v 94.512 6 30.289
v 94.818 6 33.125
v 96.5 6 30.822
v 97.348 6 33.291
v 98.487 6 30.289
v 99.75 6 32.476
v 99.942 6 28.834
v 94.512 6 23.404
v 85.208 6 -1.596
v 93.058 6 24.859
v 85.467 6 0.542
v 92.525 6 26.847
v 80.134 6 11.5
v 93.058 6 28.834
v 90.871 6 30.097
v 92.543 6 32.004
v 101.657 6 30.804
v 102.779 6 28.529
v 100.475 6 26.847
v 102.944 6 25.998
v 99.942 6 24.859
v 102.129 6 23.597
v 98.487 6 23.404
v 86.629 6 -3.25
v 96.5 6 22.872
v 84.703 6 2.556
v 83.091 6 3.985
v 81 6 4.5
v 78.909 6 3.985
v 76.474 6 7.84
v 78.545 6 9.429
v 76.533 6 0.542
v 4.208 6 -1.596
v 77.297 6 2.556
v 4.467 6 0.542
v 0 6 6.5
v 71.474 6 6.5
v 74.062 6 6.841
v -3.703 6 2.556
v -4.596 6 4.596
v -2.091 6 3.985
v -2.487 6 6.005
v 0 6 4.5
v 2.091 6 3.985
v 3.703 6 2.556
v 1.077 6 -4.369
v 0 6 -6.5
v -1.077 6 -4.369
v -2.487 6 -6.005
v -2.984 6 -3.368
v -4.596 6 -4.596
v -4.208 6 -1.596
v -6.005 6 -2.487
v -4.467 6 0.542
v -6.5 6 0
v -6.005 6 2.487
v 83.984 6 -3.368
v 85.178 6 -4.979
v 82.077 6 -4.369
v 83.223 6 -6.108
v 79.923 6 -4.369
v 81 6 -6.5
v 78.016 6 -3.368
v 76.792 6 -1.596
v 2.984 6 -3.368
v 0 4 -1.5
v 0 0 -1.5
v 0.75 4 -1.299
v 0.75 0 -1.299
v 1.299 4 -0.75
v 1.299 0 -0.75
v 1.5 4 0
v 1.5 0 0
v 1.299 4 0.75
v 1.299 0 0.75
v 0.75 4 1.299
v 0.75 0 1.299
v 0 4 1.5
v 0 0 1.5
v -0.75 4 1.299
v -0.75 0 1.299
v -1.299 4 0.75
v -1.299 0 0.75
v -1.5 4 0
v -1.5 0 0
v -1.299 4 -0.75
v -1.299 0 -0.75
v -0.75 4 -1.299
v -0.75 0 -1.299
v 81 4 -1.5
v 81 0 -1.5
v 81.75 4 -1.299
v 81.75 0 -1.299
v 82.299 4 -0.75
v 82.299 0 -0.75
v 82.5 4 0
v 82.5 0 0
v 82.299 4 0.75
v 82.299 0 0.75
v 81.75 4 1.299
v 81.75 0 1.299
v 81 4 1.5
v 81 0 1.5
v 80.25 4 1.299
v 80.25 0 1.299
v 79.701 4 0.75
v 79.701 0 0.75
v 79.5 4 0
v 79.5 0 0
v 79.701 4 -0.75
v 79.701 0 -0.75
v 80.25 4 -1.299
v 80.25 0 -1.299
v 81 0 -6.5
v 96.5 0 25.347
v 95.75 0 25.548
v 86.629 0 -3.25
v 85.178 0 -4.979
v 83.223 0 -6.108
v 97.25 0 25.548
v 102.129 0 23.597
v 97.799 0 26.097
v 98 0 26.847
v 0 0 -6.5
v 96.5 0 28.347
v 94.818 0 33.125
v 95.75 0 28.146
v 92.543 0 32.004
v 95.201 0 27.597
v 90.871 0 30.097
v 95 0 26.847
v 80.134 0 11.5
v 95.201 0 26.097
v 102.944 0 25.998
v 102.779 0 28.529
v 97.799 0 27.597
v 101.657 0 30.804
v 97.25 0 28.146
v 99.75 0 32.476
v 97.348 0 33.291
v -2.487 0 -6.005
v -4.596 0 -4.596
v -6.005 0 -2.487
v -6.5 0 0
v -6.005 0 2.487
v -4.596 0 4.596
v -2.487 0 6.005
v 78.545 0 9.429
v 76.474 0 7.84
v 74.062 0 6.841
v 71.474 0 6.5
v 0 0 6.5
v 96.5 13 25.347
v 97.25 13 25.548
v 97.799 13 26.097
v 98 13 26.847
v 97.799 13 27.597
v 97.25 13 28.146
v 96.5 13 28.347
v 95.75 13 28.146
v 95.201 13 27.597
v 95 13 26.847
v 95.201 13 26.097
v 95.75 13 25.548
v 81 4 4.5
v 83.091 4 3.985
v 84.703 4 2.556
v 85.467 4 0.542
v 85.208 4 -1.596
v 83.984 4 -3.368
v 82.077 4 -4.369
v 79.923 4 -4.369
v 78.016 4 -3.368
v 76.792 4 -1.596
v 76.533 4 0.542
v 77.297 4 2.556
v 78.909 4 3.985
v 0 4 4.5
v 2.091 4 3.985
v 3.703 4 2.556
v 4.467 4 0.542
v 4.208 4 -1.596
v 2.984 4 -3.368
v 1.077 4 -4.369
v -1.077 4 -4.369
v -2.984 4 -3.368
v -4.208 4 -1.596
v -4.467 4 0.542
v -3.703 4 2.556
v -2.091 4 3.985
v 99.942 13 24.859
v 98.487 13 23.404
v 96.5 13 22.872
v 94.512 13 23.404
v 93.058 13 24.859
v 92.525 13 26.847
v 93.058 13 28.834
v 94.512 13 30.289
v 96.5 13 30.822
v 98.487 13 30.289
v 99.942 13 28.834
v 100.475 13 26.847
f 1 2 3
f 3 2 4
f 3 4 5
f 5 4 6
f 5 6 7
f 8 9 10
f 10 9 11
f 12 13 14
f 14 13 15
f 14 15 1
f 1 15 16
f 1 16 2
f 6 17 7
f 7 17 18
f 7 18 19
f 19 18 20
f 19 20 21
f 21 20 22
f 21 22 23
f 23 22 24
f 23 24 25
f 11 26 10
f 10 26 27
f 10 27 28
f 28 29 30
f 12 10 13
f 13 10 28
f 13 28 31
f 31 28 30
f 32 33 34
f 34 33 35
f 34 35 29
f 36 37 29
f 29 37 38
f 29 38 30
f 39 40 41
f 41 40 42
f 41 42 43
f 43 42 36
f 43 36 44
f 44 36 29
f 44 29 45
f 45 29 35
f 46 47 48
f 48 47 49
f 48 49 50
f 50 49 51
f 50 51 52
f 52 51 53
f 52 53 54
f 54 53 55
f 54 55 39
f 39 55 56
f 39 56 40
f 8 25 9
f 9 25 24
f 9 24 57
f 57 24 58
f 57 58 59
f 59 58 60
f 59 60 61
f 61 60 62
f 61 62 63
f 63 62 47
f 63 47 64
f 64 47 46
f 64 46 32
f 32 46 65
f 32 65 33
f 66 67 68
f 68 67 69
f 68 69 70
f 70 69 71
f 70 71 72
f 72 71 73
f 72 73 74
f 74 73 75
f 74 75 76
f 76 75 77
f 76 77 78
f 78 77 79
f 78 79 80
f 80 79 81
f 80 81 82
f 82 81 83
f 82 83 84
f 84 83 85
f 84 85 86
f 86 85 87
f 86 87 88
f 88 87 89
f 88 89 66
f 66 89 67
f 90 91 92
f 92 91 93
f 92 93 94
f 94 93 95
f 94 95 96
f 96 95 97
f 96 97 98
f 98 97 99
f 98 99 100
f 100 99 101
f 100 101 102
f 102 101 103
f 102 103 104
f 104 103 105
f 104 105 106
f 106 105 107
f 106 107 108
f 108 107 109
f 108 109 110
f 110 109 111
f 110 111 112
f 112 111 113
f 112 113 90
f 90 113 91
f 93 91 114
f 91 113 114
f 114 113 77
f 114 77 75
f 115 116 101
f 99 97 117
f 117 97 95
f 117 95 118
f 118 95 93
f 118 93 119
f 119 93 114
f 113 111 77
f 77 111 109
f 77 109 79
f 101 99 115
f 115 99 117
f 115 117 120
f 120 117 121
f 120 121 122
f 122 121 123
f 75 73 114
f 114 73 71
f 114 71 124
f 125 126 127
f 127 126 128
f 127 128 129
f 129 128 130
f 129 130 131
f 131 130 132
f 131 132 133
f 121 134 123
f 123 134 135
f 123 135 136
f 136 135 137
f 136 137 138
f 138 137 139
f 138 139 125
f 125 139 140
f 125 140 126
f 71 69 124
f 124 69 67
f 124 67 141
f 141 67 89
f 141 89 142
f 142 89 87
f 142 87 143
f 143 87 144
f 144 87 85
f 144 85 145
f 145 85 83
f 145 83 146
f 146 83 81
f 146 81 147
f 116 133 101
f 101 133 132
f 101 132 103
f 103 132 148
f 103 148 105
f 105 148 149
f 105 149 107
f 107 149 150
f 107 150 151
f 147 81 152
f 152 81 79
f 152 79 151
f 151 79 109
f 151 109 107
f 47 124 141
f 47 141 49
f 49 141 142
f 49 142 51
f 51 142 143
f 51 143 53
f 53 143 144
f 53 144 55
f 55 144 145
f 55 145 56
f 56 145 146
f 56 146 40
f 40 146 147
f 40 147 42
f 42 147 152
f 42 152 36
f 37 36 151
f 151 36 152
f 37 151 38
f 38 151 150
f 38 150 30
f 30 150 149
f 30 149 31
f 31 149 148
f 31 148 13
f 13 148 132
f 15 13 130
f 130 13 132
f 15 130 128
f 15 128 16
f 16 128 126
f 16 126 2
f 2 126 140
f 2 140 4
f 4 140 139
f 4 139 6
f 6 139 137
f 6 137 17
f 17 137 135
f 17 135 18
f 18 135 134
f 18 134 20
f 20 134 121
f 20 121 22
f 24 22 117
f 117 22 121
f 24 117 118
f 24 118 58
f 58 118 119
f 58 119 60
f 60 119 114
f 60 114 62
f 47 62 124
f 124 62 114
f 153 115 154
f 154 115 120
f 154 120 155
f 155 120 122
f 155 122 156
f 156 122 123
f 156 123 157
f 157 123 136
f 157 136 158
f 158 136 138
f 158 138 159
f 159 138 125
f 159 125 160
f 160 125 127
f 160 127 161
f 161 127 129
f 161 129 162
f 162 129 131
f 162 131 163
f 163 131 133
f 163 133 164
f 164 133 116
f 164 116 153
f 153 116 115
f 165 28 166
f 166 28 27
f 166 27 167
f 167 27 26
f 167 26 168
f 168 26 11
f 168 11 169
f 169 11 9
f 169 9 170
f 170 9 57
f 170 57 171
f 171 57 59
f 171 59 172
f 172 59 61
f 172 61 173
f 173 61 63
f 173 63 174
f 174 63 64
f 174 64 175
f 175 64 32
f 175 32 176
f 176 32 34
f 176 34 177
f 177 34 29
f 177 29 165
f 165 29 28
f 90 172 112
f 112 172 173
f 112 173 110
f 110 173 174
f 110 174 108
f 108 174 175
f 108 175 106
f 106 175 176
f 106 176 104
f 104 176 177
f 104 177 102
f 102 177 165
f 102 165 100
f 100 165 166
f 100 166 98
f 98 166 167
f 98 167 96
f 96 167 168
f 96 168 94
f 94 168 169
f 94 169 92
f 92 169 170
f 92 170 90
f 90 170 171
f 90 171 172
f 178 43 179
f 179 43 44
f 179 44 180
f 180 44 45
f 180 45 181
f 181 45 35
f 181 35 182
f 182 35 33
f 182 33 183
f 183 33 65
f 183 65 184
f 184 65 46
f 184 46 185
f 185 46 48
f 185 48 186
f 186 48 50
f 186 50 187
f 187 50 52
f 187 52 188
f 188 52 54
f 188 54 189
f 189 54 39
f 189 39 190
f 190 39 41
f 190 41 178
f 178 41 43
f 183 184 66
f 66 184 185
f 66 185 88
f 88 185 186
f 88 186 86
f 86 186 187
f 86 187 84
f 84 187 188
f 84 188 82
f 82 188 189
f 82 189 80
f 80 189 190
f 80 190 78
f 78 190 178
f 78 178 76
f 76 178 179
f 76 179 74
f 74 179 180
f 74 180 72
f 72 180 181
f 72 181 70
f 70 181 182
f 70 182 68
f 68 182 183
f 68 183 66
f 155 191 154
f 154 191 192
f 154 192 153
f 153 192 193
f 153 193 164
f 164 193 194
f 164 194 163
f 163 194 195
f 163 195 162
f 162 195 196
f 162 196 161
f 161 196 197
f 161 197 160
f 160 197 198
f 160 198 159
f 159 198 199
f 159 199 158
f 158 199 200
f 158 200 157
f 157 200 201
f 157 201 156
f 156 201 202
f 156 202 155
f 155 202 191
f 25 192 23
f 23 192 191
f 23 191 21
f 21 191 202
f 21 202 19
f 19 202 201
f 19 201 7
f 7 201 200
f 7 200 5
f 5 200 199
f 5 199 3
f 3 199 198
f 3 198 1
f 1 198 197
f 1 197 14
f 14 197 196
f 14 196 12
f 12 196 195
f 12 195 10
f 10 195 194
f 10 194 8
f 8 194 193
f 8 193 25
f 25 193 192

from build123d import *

# Parameters (mm, degrees)
SKETCH1_R           = 1.5
BOSS_EXTRUDE1_DEPTH = 6
SKETCH2_R           = 4.5
CUT_EXTRUDE1_DEPTH  = 2
SKETCH3_R           = 3.975
SKETCH3_R_2         = 1.5
BOSS_EXTRUDE2_DEPTH = 7


with BuildPart() as part:
    # Sketch1 → Boss-Extrude1 (new body)
    with BuildSketch(Plane(origin=(0, 0, 0), x_dir=(1, 0, 0), z_dir=(0, 1, 0))):
        with BuildLine():
            Line((0, 6.5), (81, 6.5))
            ThreePointArc((81, 6.5), (84.25, 5.629165125), (86.629165125, 3.25))
            Line((86.629165125, 3.25), (102.129165125, -23.596787517))
            ThreePointArc((102.129165125, -23.596787517), (99.75, -32.475952642), (90.870834875, -30.096787517))
            Line((90.870834875, -30.096787517), (80.133974596, -11.5))
            ThreePointArc((80.133974596, -11.5), (76.473720558, -7.839745962), (71.473720558, -6.5))
            Line((71.473720558, -6.5), (0, -6.5))
            ThreePointArc((0, -6.5), (-6.5, 0), (0, 6.5))
        make_face()
        with Locations(Location((0, 0, 0), (0, 0, 270))):
            Circle(SKETCH1_R, mode=Mode.SUBTRACT)
        with Locations(Location((81, 0, 0), (0, 0, 270))):
            Circle(SKETCH1_R, mode=Mode.SUBTRACT)
        with Locations(Location((96.5, -26.846787517, 0), (0, 0, 270))):
            Circle(SKETCH1_R, mode=Mode.SUBTRACT)
    extrude(amount=BOSS_EXTRUDE1_DEPTH)

    # Sketch2 → Cut-Extrude1 (cut)
    with BuildSketch(Plane(origin=(0, 6, 0), x_dir=(1, 0, 0), z_dir=(0, 1, 0))):
        with Locations(Location((0, 0, 0), (0, 0, 270))):
            Circle(SKETCH2_R)
        with Locations(Location((81, 0, 0), (0, 0, 270))):
            Circle(SKETCH2_R)
    extrude(amount=-CUT_EXTRUDE1_DEPTH, mode=Mode.SUBTRACT)

    # Sketch3 → Boss-Extrude2 (add)
    with BuildSketch(Plane(origin=(0, 6, 0), x_dir=(1, 0, 0), z_dir=(0, 1, 0))):
        with Locations(Location((96.5, -26.846787517, 0), (0, 0, 270))):
            Circle(SKETCH3_R)
        with Locations(Location((96.5, -26.846787517, 0), (0, 0, 270))):
            Circle(SKETCH3_R_2, mode=Mode.SUBTRACT)
    extrude(amount=BOSS_EXTRUDE2_DEPTH)


solid = part.part
